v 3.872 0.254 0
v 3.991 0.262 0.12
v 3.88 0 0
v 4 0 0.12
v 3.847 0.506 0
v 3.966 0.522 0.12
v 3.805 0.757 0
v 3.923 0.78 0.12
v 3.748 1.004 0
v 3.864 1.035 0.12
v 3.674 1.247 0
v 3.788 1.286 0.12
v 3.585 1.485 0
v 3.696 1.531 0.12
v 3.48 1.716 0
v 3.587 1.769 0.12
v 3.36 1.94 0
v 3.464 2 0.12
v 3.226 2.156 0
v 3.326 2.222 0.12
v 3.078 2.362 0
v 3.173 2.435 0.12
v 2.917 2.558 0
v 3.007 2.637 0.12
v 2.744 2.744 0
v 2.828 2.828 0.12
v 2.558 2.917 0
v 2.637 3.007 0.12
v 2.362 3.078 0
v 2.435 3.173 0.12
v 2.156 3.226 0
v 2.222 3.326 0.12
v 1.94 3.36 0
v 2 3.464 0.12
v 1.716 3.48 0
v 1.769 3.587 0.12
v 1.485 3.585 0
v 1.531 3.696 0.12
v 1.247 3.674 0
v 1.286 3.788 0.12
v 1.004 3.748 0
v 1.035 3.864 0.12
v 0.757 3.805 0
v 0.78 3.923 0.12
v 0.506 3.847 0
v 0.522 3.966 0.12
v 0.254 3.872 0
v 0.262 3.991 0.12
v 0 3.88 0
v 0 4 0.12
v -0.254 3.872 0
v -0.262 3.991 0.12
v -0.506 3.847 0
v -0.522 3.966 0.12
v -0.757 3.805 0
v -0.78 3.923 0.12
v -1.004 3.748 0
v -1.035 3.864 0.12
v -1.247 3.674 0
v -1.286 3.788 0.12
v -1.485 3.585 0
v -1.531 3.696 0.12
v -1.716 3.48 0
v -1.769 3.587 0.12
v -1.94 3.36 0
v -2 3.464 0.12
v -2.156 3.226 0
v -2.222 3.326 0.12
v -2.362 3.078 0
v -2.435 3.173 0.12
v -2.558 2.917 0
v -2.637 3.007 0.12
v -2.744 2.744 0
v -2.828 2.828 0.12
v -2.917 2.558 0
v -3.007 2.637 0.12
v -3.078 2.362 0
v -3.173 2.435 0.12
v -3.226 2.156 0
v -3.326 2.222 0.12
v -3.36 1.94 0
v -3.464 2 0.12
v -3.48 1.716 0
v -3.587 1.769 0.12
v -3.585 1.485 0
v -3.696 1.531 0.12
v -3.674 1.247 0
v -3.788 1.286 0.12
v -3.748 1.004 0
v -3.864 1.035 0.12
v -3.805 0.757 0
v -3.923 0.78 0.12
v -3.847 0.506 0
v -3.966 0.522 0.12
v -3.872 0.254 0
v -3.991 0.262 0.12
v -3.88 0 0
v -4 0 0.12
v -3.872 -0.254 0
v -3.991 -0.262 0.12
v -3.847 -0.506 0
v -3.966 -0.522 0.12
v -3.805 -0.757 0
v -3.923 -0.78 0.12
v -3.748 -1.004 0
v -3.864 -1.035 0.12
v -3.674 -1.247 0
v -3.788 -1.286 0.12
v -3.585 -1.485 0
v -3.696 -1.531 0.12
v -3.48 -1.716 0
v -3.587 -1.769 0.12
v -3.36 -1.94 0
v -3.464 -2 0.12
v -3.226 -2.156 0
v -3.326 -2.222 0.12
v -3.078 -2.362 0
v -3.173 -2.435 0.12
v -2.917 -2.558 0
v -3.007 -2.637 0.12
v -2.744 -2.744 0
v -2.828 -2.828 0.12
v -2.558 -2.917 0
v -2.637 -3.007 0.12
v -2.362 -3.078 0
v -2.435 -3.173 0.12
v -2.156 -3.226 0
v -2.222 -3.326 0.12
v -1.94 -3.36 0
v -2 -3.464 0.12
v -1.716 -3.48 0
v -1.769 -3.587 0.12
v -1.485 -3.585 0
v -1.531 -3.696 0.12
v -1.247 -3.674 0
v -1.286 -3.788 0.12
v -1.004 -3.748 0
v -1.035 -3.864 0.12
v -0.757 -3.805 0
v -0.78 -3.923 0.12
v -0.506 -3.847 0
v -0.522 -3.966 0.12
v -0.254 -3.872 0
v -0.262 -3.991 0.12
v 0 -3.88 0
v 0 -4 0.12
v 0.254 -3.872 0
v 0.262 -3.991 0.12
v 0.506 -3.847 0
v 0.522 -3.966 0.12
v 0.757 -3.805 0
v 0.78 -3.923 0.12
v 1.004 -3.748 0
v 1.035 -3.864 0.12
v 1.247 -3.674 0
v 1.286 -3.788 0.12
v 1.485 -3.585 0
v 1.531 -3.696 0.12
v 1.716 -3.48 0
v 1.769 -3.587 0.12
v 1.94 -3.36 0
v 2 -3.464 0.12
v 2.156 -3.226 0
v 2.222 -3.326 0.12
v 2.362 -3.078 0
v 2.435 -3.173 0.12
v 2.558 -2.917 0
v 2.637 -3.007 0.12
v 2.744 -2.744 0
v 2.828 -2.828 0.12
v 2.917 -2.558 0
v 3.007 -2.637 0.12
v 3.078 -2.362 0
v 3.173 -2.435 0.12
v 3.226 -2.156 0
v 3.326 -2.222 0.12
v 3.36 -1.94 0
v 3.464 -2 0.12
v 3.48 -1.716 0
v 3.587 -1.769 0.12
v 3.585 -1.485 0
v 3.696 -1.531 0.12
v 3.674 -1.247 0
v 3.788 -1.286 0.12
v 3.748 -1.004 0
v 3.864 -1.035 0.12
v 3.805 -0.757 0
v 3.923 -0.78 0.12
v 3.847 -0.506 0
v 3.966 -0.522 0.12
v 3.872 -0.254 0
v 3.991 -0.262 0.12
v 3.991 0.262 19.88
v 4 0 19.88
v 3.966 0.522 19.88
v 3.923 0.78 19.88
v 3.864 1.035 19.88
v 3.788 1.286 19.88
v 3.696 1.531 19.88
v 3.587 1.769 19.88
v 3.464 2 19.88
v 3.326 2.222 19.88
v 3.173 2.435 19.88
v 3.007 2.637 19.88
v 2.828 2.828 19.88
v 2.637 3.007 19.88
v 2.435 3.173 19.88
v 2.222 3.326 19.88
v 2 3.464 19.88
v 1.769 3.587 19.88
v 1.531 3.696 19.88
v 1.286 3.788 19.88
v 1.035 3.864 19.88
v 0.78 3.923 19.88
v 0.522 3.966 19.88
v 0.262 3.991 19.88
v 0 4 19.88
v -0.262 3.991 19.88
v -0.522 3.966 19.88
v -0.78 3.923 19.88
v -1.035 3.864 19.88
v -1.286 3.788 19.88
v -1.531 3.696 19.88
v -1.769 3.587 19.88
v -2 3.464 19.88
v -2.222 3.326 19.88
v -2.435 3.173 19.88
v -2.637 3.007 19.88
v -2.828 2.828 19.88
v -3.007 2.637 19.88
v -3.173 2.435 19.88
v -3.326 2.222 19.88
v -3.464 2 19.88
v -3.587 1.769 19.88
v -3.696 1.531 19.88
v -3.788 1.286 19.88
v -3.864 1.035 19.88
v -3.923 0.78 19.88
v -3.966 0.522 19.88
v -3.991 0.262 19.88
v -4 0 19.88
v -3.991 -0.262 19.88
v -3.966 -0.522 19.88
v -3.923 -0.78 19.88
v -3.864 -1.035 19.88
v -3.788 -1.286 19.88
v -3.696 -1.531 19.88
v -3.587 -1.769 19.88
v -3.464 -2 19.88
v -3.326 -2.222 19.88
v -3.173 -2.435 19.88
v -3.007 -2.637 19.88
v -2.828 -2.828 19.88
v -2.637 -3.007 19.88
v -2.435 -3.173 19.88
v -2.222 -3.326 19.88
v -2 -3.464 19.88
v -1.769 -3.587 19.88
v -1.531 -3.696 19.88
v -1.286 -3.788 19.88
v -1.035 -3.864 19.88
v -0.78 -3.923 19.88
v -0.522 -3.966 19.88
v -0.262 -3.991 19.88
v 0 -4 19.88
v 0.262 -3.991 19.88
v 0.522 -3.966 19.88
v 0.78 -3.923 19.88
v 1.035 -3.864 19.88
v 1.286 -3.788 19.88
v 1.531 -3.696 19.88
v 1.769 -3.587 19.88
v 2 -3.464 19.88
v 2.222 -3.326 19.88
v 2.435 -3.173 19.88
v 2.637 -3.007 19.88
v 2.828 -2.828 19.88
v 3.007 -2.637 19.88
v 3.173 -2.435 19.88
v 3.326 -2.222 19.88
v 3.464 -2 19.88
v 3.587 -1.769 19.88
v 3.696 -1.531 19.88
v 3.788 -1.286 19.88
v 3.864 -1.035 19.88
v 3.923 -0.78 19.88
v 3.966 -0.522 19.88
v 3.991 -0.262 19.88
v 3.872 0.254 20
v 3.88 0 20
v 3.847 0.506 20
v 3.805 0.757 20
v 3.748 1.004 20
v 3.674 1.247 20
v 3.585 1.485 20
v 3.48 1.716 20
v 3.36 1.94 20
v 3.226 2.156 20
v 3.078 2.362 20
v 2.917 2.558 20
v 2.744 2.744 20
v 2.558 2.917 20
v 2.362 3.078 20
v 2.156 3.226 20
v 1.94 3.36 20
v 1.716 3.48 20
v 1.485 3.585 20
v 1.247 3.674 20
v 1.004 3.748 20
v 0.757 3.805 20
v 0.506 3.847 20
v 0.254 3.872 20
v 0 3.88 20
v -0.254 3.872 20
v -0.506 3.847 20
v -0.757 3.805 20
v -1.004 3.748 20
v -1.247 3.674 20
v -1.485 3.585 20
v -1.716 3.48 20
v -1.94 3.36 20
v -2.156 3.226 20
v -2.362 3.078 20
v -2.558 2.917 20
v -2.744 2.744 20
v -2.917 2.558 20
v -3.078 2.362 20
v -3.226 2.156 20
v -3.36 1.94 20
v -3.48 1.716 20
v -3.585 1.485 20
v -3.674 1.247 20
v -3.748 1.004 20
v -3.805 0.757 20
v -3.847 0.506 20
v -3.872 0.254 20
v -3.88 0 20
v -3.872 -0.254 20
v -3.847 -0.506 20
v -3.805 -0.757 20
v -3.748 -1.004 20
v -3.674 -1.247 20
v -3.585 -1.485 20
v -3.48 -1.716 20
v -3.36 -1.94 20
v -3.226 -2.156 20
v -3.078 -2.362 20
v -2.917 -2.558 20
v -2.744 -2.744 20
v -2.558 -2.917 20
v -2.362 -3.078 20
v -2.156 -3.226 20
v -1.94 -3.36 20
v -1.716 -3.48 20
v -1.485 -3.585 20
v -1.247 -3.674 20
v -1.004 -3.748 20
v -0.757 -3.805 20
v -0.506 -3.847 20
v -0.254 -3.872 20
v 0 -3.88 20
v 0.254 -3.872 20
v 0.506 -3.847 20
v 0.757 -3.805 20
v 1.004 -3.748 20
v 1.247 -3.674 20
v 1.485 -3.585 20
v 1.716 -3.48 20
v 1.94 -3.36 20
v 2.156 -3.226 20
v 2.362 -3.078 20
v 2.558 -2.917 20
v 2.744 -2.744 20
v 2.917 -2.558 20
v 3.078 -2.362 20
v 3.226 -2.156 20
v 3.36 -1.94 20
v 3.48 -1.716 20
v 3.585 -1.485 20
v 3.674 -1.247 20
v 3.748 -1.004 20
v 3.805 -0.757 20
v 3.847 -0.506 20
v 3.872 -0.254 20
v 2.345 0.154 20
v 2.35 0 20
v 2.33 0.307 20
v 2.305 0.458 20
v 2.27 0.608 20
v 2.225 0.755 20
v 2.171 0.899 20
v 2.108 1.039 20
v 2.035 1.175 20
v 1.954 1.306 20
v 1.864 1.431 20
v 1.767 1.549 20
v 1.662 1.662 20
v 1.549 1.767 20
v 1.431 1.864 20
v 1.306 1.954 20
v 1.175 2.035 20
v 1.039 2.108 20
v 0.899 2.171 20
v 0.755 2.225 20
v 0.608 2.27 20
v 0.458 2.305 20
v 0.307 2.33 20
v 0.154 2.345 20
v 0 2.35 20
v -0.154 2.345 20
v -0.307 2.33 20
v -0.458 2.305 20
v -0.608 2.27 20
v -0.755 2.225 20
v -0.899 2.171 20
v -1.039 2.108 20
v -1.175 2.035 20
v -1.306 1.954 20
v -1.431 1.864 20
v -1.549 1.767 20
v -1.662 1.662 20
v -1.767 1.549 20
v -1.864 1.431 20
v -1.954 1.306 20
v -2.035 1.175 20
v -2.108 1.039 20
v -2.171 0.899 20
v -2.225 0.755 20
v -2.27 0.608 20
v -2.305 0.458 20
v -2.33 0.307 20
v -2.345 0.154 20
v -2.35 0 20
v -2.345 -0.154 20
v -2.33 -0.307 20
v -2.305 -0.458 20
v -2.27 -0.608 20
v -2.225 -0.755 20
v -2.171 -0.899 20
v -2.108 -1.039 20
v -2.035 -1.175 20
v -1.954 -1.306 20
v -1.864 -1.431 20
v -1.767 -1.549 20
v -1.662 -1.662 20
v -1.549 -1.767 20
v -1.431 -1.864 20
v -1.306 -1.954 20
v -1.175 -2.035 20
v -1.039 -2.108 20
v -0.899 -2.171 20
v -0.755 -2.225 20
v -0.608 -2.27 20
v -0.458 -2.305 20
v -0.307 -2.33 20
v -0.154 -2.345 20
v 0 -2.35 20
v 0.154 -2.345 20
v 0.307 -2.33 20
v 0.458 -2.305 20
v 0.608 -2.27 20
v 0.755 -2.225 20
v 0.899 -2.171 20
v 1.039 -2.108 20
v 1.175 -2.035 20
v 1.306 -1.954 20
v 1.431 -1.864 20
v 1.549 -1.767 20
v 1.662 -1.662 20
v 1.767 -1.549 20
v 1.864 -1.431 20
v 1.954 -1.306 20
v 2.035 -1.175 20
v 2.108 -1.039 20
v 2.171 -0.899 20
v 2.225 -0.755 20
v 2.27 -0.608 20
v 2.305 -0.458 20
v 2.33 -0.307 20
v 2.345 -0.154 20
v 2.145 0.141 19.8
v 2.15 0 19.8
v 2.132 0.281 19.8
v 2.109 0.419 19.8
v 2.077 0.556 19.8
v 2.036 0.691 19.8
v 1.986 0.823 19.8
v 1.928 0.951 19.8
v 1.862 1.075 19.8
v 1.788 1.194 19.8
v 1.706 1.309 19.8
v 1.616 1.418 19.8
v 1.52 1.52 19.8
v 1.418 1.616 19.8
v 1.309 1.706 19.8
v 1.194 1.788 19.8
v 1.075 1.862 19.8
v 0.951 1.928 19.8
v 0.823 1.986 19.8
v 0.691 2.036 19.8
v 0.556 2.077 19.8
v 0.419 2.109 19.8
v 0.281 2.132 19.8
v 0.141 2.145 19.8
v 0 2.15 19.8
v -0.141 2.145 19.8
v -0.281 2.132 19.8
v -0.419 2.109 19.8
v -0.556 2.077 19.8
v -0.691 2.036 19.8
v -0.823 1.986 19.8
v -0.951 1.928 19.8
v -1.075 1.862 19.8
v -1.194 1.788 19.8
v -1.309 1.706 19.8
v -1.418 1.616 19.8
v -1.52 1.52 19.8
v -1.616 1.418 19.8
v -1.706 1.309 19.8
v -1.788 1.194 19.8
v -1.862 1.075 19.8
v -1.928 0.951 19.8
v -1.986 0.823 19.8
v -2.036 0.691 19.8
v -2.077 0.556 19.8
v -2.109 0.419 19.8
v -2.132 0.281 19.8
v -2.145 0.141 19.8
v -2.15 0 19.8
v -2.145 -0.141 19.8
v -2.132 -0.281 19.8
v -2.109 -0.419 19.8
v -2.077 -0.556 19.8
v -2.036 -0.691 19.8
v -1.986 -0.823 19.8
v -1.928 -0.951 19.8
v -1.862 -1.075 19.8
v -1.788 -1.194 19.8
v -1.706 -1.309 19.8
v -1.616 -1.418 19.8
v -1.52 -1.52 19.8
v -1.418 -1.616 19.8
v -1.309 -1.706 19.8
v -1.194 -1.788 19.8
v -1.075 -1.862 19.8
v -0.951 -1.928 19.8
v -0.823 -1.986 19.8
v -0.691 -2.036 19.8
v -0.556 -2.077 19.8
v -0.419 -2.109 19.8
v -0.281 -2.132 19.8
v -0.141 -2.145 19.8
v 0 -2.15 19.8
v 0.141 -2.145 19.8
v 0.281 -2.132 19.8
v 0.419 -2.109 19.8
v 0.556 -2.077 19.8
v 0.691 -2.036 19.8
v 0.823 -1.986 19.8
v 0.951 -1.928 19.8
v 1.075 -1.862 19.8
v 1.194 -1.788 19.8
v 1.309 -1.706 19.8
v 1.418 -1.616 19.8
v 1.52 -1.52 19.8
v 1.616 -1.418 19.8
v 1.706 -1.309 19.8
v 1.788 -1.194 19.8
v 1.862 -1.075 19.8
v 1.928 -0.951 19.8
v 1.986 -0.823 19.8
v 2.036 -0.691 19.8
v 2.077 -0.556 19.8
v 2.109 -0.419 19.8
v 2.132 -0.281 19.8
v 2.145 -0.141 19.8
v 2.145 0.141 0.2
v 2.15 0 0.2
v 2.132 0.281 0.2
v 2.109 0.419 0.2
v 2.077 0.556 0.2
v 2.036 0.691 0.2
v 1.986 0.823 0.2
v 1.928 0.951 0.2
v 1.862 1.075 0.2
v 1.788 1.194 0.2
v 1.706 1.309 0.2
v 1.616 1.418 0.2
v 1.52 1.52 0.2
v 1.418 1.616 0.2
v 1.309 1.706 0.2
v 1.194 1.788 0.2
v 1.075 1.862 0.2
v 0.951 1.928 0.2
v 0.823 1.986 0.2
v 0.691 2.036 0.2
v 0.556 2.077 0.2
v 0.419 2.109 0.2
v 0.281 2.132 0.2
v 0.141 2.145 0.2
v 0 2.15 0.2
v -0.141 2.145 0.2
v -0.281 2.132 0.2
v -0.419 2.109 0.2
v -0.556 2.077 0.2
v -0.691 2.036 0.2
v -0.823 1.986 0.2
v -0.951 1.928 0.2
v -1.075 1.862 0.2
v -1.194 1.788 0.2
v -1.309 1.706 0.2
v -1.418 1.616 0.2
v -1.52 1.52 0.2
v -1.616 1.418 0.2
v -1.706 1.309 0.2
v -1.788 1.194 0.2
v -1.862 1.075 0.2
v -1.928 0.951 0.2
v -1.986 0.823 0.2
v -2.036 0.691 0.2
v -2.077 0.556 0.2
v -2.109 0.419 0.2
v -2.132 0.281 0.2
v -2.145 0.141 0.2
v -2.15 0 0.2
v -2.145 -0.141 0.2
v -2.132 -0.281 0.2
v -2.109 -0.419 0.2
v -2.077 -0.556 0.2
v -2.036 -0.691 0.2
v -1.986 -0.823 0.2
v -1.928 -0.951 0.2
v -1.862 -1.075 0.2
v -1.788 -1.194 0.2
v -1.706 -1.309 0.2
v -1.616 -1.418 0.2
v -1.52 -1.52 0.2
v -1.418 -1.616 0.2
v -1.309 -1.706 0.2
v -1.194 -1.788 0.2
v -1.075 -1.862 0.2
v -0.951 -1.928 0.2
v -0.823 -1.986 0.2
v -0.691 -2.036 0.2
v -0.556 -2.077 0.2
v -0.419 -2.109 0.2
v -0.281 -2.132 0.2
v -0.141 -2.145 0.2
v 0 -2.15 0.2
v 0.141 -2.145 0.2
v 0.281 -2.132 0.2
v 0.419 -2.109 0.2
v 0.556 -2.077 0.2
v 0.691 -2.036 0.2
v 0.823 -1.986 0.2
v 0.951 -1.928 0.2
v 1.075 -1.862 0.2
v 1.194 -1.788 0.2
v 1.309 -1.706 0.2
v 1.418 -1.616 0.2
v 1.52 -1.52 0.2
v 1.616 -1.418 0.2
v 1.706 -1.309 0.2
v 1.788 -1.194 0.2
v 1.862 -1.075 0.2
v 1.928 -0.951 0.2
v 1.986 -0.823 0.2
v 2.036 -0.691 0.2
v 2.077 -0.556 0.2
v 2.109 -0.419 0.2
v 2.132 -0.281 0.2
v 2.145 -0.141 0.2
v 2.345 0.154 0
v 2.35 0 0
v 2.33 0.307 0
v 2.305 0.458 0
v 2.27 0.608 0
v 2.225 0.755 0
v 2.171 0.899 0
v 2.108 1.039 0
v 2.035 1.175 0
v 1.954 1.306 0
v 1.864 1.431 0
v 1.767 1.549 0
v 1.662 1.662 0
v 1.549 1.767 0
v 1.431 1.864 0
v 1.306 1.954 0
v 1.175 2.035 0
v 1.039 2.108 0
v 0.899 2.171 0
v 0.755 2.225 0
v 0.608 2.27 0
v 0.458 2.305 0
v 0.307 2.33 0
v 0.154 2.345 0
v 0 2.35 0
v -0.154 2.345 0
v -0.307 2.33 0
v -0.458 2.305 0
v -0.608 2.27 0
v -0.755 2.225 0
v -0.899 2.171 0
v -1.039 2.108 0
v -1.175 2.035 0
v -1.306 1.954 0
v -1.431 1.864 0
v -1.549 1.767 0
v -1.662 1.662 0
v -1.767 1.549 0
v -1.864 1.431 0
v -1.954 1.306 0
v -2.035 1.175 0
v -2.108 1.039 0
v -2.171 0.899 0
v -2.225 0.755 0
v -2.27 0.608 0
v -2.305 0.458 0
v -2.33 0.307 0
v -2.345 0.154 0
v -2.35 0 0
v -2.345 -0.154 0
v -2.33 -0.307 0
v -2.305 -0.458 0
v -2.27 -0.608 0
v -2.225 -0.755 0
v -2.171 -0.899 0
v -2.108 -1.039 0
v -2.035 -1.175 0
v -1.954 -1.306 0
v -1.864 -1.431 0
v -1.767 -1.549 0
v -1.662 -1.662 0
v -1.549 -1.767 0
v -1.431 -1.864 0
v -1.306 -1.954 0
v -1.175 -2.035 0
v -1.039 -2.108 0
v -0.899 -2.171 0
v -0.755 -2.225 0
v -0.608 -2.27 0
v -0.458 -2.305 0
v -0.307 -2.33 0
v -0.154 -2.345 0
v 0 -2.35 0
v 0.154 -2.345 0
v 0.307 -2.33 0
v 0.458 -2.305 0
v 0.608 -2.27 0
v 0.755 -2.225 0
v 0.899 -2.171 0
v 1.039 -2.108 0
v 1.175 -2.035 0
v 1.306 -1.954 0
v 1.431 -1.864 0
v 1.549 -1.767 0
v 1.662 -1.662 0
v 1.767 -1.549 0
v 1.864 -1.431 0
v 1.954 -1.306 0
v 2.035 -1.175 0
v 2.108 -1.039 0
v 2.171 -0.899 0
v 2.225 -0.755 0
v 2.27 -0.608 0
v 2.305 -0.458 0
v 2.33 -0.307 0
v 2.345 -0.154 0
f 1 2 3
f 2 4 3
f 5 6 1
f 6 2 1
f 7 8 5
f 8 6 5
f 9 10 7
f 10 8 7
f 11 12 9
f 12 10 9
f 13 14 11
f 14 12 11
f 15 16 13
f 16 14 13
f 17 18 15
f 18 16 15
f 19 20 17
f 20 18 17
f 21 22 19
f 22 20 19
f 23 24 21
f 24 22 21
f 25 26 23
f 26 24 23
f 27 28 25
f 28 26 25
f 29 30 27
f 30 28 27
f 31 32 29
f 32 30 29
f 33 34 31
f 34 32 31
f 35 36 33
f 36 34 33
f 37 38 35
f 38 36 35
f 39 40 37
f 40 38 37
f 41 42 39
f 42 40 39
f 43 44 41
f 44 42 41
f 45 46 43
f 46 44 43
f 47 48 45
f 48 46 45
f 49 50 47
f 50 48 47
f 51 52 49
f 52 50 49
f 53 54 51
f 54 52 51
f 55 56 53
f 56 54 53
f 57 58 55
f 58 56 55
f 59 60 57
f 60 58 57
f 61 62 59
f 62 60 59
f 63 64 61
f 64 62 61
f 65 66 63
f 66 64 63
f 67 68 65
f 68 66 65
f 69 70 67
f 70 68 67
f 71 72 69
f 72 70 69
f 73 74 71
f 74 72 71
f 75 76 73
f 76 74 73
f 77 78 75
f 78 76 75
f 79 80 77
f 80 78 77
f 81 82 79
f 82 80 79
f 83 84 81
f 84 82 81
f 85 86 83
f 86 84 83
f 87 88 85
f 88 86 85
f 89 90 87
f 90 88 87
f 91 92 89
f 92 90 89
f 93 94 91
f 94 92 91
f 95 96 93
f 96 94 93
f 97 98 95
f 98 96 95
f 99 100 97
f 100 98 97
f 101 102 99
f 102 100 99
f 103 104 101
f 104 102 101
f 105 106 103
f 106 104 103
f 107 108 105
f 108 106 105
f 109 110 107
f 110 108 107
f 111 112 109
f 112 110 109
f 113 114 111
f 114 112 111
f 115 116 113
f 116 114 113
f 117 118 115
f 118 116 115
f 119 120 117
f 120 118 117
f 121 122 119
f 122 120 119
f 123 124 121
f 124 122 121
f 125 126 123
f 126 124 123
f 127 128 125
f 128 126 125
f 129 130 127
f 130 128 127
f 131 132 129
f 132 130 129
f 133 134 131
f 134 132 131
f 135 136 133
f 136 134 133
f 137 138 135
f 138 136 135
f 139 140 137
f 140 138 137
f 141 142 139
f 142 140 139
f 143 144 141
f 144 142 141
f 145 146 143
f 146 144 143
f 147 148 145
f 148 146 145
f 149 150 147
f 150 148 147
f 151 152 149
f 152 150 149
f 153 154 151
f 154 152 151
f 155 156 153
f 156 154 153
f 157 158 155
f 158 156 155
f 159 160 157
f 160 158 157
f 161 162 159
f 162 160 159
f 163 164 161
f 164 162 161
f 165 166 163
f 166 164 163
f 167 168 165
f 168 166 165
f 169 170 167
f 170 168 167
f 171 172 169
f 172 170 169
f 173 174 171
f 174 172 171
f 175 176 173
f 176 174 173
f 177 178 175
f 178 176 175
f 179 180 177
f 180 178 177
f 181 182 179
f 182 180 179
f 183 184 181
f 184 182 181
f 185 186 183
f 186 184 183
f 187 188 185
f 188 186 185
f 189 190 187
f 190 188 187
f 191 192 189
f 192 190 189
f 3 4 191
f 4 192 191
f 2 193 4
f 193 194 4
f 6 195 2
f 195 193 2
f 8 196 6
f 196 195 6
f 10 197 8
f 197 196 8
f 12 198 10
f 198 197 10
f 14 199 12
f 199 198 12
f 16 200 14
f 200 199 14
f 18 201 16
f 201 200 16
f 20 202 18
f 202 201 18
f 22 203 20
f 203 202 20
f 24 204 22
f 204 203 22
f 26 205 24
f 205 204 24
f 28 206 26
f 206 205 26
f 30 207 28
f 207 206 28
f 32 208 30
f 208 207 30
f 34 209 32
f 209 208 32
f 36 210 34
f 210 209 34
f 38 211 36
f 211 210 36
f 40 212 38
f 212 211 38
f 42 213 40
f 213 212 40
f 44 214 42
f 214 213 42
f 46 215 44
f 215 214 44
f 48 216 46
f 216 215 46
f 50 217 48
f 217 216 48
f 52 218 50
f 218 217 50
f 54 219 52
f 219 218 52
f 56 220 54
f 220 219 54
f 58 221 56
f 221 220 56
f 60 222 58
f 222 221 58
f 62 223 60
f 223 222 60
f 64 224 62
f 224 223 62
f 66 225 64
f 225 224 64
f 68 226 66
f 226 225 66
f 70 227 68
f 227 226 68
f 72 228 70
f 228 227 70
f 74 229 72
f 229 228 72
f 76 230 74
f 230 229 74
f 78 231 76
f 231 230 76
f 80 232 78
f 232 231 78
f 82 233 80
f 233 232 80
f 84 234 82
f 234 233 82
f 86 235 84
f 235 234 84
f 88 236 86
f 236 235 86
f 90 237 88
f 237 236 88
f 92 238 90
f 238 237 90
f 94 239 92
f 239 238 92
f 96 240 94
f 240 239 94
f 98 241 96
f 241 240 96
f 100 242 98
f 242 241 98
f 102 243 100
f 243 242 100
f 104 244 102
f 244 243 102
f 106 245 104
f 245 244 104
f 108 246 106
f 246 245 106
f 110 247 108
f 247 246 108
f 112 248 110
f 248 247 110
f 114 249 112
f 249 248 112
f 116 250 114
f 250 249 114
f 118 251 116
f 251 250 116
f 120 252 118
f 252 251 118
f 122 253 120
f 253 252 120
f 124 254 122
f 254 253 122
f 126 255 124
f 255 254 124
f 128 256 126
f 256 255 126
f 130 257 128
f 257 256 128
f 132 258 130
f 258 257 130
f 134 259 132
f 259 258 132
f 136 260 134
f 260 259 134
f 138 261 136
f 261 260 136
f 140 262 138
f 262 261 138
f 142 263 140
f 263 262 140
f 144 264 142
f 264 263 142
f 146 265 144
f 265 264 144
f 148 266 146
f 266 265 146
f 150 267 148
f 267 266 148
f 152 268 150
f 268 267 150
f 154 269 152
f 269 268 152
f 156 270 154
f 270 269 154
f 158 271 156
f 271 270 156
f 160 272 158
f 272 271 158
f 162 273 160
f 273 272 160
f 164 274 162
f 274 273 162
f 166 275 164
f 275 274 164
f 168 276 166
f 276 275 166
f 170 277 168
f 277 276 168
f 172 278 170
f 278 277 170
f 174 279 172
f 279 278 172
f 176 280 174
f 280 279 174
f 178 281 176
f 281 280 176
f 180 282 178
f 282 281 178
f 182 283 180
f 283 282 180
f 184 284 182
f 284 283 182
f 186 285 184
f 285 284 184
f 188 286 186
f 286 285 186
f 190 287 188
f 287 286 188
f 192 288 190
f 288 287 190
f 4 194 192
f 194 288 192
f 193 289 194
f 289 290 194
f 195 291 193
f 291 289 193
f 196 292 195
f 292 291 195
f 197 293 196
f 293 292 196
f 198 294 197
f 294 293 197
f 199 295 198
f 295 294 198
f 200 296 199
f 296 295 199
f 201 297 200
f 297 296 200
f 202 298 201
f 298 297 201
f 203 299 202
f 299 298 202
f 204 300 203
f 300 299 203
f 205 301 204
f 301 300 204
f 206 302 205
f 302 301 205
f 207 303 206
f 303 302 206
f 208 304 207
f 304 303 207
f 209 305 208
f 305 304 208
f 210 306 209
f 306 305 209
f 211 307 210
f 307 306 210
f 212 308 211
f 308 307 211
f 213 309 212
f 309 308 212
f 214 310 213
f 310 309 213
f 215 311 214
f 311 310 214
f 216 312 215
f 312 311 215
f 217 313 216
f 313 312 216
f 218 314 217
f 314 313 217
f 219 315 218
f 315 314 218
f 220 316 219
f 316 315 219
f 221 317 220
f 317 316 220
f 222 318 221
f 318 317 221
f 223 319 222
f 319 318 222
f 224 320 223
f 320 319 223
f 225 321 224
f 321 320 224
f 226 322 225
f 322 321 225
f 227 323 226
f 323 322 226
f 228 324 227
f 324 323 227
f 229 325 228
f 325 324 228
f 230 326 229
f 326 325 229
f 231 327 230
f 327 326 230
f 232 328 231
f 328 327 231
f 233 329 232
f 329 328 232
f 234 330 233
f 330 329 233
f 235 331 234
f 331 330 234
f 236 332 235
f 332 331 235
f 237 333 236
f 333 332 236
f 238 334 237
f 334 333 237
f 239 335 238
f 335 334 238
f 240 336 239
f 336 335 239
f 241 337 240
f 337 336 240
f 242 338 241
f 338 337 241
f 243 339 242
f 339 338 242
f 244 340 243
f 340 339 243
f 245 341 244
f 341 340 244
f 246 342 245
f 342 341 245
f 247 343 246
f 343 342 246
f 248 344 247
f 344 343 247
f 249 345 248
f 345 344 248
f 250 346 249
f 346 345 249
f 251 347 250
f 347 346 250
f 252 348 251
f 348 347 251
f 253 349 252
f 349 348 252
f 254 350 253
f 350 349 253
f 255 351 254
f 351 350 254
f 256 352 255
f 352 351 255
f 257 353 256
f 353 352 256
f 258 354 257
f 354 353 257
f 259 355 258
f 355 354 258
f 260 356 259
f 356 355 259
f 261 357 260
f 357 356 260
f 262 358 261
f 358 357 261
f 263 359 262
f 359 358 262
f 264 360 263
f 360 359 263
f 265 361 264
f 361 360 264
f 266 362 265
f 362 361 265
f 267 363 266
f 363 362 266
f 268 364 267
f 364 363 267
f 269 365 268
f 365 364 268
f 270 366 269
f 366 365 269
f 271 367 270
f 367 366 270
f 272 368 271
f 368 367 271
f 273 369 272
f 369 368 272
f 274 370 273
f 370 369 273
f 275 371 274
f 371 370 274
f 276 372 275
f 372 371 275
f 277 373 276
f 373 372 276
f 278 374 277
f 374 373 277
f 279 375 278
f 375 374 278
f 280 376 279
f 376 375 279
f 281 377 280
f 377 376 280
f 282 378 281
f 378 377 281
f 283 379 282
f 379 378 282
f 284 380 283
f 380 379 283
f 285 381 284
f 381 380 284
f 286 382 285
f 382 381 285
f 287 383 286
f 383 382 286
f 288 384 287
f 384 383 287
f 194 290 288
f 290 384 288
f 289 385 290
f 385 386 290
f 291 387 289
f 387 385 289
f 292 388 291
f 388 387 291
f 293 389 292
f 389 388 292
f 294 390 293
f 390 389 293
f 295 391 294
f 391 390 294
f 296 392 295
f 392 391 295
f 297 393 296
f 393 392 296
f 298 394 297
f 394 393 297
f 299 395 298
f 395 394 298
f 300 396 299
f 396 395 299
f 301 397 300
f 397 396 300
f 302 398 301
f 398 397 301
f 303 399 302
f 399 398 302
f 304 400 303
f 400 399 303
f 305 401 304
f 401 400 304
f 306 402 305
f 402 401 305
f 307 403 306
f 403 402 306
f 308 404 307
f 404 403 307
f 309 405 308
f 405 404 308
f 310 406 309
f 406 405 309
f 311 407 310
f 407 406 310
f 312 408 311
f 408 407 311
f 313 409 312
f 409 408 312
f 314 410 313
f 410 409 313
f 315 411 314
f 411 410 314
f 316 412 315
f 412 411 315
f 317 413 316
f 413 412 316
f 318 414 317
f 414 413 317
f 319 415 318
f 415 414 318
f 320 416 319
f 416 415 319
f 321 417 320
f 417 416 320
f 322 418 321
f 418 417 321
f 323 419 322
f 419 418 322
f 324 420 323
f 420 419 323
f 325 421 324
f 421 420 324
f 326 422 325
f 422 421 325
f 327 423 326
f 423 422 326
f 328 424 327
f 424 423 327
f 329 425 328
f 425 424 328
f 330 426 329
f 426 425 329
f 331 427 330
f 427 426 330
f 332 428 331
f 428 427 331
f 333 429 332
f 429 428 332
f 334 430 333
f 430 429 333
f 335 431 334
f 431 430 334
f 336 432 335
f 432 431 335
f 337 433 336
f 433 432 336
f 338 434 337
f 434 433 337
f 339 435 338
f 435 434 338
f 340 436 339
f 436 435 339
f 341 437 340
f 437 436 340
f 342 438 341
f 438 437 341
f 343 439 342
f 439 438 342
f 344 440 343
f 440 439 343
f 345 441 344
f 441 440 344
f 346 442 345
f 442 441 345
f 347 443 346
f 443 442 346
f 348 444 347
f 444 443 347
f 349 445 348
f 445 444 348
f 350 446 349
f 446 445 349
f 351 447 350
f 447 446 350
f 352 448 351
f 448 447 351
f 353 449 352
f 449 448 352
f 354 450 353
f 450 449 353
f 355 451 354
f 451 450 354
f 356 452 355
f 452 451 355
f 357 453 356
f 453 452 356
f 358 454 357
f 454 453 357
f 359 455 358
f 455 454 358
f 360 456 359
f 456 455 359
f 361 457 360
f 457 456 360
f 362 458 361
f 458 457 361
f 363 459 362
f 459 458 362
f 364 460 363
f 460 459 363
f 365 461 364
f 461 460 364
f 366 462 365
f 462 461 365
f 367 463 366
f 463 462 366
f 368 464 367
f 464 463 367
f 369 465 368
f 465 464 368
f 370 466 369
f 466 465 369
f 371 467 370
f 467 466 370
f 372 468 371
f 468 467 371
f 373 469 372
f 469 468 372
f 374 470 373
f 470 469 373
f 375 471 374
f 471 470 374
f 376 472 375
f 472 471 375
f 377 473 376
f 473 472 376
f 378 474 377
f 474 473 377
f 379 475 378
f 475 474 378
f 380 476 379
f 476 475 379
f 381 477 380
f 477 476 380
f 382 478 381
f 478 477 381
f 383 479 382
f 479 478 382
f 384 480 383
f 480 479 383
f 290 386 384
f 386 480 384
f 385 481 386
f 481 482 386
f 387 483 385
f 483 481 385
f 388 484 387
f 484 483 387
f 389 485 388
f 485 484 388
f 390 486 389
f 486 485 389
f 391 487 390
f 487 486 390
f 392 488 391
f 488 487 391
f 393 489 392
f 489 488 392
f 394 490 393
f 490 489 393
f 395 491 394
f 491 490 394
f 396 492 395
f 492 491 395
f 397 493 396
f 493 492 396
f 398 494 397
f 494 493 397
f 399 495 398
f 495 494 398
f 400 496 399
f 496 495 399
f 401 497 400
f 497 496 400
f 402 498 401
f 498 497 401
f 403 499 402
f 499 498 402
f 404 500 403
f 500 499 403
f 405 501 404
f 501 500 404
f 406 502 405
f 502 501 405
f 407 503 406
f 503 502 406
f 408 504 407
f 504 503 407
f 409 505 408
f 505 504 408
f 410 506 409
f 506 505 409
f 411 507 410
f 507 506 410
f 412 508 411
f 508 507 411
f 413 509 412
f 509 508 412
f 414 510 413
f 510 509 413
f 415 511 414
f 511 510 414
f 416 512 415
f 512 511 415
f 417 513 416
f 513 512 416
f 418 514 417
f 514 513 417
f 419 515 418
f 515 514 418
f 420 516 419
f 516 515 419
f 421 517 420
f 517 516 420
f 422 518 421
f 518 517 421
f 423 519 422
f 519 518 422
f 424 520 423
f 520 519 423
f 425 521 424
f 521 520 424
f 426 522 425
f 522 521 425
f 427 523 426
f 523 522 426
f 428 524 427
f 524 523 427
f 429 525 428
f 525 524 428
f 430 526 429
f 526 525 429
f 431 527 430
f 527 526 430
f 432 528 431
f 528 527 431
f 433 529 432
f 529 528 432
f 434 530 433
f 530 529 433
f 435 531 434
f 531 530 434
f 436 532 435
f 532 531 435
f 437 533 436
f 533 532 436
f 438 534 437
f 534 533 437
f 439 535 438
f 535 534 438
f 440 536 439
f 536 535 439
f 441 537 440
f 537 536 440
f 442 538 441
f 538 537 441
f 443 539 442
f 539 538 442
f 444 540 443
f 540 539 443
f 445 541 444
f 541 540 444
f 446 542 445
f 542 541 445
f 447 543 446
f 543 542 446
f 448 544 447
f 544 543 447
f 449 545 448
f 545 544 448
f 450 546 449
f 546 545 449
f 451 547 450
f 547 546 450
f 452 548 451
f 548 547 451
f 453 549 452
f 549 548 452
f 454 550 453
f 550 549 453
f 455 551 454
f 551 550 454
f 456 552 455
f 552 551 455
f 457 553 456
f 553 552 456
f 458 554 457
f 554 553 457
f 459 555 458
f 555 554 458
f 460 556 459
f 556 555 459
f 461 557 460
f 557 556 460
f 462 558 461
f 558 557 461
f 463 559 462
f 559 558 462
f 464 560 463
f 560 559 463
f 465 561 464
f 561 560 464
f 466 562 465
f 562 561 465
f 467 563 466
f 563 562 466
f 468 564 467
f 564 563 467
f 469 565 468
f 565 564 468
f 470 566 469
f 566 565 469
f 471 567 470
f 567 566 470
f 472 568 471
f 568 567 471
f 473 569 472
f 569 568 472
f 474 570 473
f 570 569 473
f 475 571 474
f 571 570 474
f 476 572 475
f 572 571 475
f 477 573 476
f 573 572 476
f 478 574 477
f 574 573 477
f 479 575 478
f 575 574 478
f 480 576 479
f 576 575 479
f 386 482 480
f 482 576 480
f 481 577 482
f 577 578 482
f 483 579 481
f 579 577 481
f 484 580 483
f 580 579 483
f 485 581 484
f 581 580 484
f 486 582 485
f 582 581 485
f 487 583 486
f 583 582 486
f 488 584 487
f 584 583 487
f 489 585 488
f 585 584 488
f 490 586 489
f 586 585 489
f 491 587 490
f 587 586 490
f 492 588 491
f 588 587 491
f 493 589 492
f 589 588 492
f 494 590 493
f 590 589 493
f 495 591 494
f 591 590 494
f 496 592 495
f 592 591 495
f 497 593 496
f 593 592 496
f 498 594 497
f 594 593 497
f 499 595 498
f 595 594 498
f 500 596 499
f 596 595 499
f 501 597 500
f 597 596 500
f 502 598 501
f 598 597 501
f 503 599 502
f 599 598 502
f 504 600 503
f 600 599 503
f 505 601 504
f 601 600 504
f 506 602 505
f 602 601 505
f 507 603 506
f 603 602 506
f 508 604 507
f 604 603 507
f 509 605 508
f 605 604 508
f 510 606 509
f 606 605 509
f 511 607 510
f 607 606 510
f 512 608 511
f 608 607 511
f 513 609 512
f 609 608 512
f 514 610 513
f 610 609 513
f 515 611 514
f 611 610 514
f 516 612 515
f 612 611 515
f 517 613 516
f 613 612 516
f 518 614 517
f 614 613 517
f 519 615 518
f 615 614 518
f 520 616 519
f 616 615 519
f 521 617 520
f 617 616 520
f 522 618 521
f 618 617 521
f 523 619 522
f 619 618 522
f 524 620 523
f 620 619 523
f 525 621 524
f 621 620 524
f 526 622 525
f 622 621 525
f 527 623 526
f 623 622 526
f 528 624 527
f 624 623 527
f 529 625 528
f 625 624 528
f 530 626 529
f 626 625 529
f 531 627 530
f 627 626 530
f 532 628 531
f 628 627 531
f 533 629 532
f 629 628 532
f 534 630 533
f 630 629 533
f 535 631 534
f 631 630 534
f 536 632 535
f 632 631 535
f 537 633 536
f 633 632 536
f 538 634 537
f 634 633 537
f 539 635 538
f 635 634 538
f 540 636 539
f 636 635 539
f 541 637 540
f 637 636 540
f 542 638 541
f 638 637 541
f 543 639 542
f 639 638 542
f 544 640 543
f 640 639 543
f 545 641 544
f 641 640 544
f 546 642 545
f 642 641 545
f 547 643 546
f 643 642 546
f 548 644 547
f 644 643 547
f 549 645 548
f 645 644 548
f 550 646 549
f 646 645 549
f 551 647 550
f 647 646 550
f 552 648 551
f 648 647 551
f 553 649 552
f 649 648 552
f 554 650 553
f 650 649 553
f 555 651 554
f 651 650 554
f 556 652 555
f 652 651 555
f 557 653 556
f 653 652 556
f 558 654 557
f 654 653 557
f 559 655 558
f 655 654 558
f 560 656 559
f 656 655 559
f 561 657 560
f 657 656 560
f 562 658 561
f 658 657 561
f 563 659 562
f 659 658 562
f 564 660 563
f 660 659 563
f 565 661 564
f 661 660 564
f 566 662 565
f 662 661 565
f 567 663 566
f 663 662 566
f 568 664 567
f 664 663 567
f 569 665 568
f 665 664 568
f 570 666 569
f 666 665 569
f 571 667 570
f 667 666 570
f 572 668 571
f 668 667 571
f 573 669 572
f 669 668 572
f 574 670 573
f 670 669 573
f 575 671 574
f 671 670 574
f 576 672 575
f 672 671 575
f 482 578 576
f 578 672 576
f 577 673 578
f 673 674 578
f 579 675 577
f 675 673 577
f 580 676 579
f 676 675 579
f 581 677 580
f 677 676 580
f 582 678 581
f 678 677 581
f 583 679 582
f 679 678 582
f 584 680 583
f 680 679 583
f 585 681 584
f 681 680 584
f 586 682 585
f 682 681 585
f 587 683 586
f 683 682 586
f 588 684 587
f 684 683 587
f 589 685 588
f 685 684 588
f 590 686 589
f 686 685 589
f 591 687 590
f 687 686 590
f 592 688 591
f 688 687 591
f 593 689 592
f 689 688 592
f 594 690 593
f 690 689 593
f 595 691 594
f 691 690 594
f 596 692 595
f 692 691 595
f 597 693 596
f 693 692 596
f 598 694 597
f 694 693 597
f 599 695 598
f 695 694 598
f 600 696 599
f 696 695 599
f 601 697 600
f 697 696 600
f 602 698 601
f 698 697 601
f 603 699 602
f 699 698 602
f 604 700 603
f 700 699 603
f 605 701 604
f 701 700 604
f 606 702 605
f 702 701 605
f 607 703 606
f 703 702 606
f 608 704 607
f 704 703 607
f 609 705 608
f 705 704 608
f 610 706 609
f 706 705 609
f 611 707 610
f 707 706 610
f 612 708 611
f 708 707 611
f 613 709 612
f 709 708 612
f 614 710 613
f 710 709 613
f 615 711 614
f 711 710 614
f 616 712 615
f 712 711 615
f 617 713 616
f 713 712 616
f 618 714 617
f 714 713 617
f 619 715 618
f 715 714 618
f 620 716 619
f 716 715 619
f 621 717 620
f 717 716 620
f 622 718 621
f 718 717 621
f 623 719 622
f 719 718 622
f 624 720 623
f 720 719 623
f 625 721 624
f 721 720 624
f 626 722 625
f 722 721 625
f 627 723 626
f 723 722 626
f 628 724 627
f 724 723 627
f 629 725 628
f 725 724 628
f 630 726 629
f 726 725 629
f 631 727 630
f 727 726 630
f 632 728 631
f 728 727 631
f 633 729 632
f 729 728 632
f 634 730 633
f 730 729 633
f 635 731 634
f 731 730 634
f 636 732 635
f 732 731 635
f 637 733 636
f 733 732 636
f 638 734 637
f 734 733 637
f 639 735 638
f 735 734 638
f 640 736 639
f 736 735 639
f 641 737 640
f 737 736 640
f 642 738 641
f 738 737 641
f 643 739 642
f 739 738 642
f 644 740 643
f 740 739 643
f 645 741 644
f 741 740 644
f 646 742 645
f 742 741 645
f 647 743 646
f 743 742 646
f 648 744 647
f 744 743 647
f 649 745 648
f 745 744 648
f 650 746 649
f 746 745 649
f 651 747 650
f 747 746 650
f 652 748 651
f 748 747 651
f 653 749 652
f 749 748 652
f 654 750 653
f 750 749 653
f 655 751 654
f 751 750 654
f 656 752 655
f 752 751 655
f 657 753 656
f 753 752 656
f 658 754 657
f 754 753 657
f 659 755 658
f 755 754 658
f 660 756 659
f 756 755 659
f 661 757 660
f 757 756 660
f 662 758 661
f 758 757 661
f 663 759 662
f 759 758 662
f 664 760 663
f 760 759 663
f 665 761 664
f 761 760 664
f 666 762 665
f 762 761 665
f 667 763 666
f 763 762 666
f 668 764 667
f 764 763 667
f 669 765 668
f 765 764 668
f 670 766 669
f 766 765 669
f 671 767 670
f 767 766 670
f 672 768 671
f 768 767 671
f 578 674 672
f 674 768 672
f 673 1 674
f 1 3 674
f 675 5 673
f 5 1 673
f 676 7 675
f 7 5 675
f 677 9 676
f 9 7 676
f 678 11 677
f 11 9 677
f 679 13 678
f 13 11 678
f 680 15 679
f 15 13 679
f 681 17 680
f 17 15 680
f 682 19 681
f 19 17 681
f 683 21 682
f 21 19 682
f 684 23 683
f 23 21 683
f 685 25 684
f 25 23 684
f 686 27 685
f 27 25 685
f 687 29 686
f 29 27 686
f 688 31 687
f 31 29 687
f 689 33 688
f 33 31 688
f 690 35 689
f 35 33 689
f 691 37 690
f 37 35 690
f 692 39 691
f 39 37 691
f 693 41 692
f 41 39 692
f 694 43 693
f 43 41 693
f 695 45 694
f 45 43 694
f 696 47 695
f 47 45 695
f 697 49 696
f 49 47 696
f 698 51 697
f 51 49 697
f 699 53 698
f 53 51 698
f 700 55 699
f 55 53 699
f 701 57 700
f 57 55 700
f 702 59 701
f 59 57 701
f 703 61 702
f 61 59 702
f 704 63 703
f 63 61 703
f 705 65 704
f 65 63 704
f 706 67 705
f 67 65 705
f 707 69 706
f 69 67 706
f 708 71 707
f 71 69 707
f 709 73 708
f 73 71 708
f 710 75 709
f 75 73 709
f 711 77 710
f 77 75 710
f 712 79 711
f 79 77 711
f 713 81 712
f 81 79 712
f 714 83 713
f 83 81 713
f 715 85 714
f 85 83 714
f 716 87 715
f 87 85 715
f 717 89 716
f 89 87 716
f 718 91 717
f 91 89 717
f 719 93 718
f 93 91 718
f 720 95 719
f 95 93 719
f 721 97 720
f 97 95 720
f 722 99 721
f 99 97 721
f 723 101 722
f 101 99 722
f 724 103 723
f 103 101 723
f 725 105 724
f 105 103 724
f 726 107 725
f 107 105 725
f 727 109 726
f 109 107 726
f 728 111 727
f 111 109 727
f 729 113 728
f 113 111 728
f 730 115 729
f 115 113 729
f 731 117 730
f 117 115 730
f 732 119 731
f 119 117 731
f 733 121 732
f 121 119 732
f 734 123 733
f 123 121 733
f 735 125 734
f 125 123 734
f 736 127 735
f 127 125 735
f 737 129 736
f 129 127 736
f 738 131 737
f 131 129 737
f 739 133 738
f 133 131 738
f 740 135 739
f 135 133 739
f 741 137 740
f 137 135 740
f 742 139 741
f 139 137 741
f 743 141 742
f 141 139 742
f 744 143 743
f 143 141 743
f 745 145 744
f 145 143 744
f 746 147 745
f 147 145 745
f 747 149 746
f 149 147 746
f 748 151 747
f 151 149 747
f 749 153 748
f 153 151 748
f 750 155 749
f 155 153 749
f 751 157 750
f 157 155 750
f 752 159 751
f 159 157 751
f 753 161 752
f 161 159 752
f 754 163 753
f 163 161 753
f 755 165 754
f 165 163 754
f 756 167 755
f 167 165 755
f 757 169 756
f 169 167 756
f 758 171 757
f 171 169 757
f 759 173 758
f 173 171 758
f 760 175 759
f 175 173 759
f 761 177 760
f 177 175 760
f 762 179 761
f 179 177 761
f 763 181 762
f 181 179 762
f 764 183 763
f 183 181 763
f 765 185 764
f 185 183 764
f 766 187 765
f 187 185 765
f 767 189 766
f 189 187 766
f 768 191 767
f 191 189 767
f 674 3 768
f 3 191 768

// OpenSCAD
// OOMP generic catalogue model; units: mm.
// Stud length is additional to body depth. Tapping depths are model assumptions.
variant = "full"; // [full, display]
family = "spacer";
connection_type = "plain";
depth_mm = 20;
stud_length_mm = 0;
tapped_depth_mm = 0;
bore_mm = 4.3;
outer_diameter_mm = 8;
across_flats_mm = 6;
thread_nominal_diameter_mm = 3;
thread_pitch_mm = 0.5;
edge_chamfer_mm = 0.12;
mouth_chamfer_mm = 0.2;
angular_segments = 96;
samples_per_pitch = 16;

// Boundary travels up the outside, then down any tapped/plain bore.
// Equal-height rings at shoulders form the annular shoulder faces.
n = angular_segments;
threaded = family == "standoff";
has_stud = connection_type == "stud_to_tapped" || connection_type == "stud_to_stud";
two_studs = connection_type == "stud_to_stud";
through = !threaded || connection_type == "tapped_to_tapped";
pitch = thread_pitch_mm;
diameter = threaded ? thread_nominal_diameter_mm : bore_mm;
minor = diameter - 5*sqrt(3)*pitch/8;
transition = mouth_chamfer_mm + (threaded ? 5*sqrt(3)*pitch/16 : 0);
tip_chamfer = mouth_chamfer_mm + 17*sqrt(3)*pitch/48;
function sorted(v) = len(v)<=1 ? v : let(p=v[0])
    concat(sorted([for(x=v) if(x<p-1e-8) x]), [p], sorted([for(x=v) if(x>p+1e-8) x]));
function reverse(v) = [for(i=[len(v)-1:-1:0]) v[i]];
function theta(i) = i*360/n;
function fract(x) = x-floor(x);
function phase_distance(i,z) = abs(fract(z/pitch-theta(i)/360+0.5)-0.5);
function thread_r(i,z) = minor/2 + min(5*sqrt(3)*pitch/16,
    max(0,(phase_distance(i,z)-0.125)*pitch*sqrt(3)));
function stud_r(i,z,tip) = min(diameter/2 - (variant=="full" ?
    min(17*sqrt(3)*pitch/48,max(0,(phase_distance(i,z)-0.0625)*pitch*sqrt(3))) : 0),
    diameter/2-tip_chamfer+abs(z-tip));
function body_r(i,z) = (threaded ? across_flats_mm/2/cos(theta(i)%60-30) : outer_diameter_mm/2)
    - max(0,edge_chamfer_mm-min(z,depth_mm-z));
function bore_r(i,z) = max(threaded ? (variant=="full" ? thread_r(i,z) : minor/2) : diameter/2,
    diameter/2+mouth_chamfer_mm-(through ? min(z,depth_mm-z) : depth_mm-z));
function stud_z(a,b,tip) = let(count=variant=="full" ? ceil(stud_length_mm/pitch*samples_per_pitch) : 1)
    sorted(concat([for(i=[0:count]) a+(b-a)*i/count], [tip==a ? tip+tip_chamfer : tip-tip_chamfer]));
body_z = sorted([0,edge_chamfer_mm,depth_mm-edge_chamfer_mm,depth_mm]);
low = through ? 0 : depth_mm-tapped_depth_mm;
count = threaded && variant=="full" ? ceil((depth_mm-low)/pitch*samples_per_pitch) : 1;
bore_z = two_studs ? [] : reverse(sorted(concat(
    [for(i=[0:count]) low+(depth_mm-low)*i/count],
    [depth_mm-mouth_chamfer_mm,depth_mm-transition],
    through ? [mouth_chamfer_mm,transition] : [])));
// Ring descriptors: [height, kind, tip]. Kind: 0 body, 1 stud, 2 bore.
rings = concat(
    has_stud ? [for(z=stud_z(-stud_length_mm,0,-stud_length_mm)) [z,1,-stud_length_mm]] : [],
    [for(z=body_z) [z,0,0]],
    two_studs ? [for(z=stud_z(depth_mm,depth_mm+stud_length_mm,depth_mm+stud_length_mm)) [z,1,depth_mm+stud_length_mm]] : [],
    [for(z=bore_z) [z,2,0]]);
function radius(i,ring) = ring[1]==0 ? body_r(i,ring[0]) :
    ring[1]==1 ? stud_r(i,ring[0],ring[2]) : bore_r(i,ring[0]);
points = concat([for(ring=rings) for(i=[0:n-1])
    [radius(i,ring)*cos(theta(i)),radius(i,ring)*sin(theta(i)),ring[0]]],
    through ? [] : [[0,0,rings[0][0]],[0,0,rings[len(rings)-1][0]]]);
center = len(rings)*n;
last = (len(rings)-1)*n;
// OpenSCAD winding is opposite to STL winding.
faces = concat(
    [for(j=[0:len(rings)-(through ? 1 : 2)]) for(i=[0:n-1]) each
        let(a=j*n+i,b=j*n+(i+1)%n,c=((j+1)%len(rings))*n+(i+1)%n,d=((j+1)%len(rings))*n+i)
        [[a,c,b],[a,d,c]]],
    through ? [] : [for(i=[0:n-1]) each let(k=(i+1)%n)
        [[center,i,k],[center+1,last+k,last+i]]]);
assert(family=="spacer" || family=="standoff");
assert(!threaded || connection_type=="tapped_to_tapped" || has_stud);
assert(depth_mm>0 && diameter>0 && pitch>0);
assert(variant=="full" || variant=="display");
assert(n>=24 && n%12==0 && samples_per_pitch>=8);
assert(mouth_chamfer_mm>0 && mouth_chamfer_mm<depth_mm/2);
assert(edge_chamfer_mm>=0 && edge_chamfer_mm<depth_mm/2);
assert(diameter+4*max(mouth_chamfer_mm,edge_chamfer_mm) < (threaded ? across_flats_mm : outer_diameter_mm));
assert(!has_stud || stud_length_mm>2*mouth_chamfer_mm);
assert(!through || !threaded || 2*transition<depth_mm);
assert(connection_type!="stud_to_tapped" || (tapped_depth_mm>transition && tapped_depth_mm<depth_mm));
color([0.86,0.85,0.81]) polyhedron(points=points,faces=faces,convexity=20);
